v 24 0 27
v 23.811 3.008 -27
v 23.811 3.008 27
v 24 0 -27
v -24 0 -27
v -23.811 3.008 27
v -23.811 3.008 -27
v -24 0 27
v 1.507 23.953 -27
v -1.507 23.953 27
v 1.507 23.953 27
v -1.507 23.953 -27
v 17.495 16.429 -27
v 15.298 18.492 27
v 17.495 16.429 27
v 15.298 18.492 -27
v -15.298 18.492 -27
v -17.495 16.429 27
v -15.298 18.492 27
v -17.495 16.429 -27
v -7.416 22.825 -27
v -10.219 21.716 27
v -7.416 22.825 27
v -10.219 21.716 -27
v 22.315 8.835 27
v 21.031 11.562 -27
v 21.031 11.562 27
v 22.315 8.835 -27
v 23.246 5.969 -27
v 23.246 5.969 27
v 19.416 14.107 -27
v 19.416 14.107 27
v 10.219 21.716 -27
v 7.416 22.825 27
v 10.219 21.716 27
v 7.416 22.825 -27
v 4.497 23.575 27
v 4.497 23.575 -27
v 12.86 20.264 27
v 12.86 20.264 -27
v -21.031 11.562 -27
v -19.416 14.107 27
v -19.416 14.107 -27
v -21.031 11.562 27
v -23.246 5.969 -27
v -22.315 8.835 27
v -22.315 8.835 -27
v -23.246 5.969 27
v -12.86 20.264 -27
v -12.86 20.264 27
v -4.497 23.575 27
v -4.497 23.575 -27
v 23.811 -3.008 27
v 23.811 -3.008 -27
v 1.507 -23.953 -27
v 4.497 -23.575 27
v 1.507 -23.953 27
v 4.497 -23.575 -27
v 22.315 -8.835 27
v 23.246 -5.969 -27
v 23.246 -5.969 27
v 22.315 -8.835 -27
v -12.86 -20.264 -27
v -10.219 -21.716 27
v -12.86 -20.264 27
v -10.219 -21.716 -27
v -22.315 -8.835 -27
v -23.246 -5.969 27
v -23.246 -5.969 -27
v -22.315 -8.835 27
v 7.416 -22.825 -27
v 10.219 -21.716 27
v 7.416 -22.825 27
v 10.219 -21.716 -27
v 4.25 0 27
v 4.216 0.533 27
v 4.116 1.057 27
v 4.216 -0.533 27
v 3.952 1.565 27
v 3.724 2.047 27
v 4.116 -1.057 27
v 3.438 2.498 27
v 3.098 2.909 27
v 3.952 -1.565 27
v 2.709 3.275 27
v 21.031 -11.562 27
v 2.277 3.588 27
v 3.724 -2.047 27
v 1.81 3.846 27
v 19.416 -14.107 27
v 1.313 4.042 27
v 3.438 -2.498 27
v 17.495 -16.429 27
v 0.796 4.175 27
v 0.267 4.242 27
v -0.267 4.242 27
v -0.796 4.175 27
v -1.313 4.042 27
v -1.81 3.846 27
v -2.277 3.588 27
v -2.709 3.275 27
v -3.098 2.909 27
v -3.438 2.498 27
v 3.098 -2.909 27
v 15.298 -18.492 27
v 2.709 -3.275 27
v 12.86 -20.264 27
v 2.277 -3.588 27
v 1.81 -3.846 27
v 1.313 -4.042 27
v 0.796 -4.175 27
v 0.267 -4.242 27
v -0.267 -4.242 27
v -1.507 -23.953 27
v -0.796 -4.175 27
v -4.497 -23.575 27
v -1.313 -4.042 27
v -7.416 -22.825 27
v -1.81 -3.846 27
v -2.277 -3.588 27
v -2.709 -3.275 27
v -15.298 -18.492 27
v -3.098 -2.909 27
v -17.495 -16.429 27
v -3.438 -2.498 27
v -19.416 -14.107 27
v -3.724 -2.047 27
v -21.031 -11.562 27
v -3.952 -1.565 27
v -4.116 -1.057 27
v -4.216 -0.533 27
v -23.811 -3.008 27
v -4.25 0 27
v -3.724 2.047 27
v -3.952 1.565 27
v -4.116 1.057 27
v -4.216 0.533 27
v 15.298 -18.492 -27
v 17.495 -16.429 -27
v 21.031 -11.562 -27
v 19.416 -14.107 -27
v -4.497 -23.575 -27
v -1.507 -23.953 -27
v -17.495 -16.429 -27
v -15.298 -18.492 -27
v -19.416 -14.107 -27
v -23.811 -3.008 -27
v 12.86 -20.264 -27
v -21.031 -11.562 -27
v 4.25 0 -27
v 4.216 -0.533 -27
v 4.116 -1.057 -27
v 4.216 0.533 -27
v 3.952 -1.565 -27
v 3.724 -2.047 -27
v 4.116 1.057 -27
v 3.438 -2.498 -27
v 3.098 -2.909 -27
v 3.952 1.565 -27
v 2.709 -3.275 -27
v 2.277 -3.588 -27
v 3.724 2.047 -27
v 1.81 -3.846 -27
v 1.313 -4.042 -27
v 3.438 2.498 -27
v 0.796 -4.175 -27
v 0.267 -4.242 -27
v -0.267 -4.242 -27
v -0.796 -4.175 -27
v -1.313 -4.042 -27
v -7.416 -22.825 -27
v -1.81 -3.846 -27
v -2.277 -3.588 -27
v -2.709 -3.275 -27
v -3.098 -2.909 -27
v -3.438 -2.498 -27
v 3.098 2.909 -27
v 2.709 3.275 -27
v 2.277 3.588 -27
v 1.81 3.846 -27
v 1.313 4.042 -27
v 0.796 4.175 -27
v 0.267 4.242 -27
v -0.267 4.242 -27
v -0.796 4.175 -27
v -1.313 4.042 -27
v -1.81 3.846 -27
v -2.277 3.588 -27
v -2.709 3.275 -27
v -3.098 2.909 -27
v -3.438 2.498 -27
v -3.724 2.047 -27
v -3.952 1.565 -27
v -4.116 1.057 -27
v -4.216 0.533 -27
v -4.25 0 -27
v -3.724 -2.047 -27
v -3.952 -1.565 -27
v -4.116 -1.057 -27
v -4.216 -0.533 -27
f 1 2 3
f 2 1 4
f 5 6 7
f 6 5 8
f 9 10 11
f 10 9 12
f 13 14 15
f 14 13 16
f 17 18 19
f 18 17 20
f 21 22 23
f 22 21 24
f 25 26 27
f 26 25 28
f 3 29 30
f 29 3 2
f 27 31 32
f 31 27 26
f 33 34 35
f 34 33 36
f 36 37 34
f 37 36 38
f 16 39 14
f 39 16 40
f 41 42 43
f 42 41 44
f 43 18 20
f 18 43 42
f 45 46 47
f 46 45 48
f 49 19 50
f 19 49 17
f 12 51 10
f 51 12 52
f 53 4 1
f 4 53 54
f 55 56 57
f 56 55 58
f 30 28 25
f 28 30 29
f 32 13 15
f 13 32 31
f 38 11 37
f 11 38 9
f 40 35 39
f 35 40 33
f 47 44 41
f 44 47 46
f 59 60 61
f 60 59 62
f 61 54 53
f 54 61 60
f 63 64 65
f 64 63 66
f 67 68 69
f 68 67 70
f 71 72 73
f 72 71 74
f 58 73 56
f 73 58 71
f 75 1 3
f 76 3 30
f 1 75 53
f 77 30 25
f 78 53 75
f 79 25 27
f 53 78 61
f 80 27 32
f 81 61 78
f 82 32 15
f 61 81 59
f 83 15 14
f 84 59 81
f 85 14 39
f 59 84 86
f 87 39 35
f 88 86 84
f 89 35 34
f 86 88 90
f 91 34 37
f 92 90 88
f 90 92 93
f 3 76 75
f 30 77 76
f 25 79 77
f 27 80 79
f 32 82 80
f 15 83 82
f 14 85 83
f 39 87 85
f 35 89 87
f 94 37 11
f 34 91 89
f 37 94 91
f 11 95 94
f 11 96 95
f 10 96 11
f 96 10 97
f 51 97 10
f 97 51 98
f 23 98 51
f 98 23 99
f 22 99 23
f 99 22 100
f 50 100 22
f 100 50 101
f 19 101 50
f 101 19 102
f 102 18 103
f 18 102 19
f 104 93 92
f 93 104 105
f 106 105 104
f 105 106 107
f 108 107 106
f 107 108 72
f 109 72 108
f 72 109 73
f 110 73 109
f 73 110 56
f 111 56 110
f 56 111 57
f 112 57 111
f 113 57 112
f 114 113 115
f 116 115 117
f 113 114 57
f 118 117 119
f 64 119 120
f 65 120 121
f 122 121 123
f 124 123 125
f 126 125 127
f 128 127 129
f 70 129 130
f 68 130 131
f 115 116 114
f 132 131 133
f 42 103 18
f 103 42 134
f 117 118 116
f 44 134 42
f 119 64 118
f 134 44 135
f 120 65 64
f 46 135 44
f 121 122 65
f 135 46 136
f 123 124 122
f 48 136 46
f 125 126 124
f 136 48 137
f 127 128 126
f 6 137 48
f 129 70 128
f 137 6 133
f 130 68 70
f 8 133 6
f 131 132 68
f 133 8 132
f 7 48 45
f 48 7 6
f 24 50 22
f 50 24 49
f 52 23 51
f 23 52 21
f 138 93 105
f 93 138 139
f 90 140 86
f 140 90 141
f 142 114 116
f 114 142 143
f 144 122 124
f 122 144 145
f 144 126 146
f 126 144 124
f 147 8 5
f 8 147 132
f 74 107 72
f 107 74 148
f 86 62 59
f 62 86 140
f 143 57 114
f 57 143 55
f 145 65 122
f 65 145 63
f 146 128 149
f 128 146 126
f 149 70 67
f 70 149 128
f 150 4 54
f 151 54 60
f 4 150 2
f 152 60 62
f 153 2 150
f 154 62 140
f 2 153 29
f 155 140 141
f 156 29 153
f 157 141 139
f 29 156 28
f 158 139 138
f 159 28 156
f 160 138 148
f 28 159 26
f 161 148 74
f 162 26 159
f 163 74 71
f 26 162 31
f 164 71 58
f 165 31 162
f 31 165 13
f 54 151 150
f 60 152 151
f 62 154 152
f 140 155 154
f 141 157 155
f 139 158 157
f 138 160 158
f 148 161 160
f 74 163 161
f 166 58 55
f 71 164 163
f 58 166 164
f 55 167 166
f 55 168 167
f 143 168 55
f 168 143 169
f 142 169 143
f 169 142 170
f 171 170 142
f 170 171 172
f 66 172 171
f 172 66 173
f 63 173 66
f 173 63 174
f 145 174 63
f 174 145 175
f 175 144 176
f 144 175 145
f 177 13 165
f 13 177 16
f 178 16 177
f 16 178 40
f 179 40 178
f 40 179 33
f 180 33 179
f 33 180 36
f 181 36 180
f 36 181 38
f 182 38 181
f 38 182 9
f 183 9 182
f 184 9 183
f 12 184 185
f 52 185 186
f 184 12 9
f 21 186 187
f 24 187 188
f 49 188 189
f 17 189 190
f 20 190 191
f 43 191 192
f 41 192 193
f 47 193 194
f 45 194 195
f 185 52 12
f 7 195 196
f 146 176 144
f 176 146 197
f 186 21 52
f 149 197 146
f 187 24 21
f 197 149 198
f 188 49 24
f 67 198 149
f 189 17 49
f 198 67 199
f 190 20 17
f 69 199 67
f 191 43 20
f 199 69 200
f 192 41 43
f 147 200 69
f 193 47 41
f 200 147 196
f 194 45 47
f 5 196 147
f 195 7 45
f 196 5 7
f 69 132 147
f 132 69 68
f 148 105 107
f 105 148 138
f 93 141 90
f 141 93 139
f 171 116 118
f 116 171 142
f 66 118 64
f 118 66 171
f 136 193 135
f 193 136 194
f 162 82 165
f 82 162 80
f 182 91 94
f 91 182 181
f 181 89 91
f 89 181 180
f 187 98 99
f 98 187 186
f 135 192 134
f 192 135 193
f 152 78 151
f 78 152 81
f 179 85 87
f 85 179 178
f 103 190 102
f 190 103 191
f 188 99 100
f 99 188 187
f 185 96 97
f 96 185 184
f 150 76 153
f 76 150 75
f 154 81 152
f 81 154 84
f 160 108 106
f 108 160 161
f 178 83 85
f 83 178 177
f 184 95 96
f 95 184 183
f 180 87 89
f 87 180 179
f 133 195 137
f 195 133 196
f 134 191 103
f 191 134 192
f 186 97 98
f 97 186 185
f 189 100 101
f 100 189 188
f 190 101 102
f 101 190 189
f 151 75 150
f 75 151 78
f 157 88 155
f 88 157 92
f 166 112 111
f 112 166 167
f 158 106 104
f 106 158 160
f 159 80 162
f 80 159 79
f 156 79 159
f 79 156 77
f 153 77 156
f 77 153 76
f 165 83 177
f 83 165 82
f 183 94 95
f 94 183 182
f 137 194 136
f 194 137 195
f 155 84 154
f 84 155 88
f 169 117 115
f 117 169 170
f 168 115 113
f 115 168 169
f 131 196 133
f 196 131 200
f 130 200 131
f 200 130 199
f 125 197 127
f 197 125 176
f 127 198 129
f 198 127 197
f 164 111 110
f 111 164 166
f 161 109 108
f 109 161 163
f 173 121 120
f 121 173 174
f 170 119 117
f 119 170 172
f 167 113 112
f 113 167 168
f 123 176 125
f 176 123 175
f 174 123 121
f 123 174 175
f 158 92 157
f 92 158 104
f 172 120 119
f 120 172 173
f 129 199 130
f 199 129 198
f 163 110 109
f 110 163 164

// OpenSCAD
$fn = 50;


difference() {
	union() {
		translate(v = [0, 0, -27.0000000000]) {
			cylinder(h = 54, r = 24.0000000000);
		}
	}
	union() {
		translate(v = [0, 0, -100.0000000000]) {
			cylinder(h = 200, r = 4.2500000000);
		}
	}
}
